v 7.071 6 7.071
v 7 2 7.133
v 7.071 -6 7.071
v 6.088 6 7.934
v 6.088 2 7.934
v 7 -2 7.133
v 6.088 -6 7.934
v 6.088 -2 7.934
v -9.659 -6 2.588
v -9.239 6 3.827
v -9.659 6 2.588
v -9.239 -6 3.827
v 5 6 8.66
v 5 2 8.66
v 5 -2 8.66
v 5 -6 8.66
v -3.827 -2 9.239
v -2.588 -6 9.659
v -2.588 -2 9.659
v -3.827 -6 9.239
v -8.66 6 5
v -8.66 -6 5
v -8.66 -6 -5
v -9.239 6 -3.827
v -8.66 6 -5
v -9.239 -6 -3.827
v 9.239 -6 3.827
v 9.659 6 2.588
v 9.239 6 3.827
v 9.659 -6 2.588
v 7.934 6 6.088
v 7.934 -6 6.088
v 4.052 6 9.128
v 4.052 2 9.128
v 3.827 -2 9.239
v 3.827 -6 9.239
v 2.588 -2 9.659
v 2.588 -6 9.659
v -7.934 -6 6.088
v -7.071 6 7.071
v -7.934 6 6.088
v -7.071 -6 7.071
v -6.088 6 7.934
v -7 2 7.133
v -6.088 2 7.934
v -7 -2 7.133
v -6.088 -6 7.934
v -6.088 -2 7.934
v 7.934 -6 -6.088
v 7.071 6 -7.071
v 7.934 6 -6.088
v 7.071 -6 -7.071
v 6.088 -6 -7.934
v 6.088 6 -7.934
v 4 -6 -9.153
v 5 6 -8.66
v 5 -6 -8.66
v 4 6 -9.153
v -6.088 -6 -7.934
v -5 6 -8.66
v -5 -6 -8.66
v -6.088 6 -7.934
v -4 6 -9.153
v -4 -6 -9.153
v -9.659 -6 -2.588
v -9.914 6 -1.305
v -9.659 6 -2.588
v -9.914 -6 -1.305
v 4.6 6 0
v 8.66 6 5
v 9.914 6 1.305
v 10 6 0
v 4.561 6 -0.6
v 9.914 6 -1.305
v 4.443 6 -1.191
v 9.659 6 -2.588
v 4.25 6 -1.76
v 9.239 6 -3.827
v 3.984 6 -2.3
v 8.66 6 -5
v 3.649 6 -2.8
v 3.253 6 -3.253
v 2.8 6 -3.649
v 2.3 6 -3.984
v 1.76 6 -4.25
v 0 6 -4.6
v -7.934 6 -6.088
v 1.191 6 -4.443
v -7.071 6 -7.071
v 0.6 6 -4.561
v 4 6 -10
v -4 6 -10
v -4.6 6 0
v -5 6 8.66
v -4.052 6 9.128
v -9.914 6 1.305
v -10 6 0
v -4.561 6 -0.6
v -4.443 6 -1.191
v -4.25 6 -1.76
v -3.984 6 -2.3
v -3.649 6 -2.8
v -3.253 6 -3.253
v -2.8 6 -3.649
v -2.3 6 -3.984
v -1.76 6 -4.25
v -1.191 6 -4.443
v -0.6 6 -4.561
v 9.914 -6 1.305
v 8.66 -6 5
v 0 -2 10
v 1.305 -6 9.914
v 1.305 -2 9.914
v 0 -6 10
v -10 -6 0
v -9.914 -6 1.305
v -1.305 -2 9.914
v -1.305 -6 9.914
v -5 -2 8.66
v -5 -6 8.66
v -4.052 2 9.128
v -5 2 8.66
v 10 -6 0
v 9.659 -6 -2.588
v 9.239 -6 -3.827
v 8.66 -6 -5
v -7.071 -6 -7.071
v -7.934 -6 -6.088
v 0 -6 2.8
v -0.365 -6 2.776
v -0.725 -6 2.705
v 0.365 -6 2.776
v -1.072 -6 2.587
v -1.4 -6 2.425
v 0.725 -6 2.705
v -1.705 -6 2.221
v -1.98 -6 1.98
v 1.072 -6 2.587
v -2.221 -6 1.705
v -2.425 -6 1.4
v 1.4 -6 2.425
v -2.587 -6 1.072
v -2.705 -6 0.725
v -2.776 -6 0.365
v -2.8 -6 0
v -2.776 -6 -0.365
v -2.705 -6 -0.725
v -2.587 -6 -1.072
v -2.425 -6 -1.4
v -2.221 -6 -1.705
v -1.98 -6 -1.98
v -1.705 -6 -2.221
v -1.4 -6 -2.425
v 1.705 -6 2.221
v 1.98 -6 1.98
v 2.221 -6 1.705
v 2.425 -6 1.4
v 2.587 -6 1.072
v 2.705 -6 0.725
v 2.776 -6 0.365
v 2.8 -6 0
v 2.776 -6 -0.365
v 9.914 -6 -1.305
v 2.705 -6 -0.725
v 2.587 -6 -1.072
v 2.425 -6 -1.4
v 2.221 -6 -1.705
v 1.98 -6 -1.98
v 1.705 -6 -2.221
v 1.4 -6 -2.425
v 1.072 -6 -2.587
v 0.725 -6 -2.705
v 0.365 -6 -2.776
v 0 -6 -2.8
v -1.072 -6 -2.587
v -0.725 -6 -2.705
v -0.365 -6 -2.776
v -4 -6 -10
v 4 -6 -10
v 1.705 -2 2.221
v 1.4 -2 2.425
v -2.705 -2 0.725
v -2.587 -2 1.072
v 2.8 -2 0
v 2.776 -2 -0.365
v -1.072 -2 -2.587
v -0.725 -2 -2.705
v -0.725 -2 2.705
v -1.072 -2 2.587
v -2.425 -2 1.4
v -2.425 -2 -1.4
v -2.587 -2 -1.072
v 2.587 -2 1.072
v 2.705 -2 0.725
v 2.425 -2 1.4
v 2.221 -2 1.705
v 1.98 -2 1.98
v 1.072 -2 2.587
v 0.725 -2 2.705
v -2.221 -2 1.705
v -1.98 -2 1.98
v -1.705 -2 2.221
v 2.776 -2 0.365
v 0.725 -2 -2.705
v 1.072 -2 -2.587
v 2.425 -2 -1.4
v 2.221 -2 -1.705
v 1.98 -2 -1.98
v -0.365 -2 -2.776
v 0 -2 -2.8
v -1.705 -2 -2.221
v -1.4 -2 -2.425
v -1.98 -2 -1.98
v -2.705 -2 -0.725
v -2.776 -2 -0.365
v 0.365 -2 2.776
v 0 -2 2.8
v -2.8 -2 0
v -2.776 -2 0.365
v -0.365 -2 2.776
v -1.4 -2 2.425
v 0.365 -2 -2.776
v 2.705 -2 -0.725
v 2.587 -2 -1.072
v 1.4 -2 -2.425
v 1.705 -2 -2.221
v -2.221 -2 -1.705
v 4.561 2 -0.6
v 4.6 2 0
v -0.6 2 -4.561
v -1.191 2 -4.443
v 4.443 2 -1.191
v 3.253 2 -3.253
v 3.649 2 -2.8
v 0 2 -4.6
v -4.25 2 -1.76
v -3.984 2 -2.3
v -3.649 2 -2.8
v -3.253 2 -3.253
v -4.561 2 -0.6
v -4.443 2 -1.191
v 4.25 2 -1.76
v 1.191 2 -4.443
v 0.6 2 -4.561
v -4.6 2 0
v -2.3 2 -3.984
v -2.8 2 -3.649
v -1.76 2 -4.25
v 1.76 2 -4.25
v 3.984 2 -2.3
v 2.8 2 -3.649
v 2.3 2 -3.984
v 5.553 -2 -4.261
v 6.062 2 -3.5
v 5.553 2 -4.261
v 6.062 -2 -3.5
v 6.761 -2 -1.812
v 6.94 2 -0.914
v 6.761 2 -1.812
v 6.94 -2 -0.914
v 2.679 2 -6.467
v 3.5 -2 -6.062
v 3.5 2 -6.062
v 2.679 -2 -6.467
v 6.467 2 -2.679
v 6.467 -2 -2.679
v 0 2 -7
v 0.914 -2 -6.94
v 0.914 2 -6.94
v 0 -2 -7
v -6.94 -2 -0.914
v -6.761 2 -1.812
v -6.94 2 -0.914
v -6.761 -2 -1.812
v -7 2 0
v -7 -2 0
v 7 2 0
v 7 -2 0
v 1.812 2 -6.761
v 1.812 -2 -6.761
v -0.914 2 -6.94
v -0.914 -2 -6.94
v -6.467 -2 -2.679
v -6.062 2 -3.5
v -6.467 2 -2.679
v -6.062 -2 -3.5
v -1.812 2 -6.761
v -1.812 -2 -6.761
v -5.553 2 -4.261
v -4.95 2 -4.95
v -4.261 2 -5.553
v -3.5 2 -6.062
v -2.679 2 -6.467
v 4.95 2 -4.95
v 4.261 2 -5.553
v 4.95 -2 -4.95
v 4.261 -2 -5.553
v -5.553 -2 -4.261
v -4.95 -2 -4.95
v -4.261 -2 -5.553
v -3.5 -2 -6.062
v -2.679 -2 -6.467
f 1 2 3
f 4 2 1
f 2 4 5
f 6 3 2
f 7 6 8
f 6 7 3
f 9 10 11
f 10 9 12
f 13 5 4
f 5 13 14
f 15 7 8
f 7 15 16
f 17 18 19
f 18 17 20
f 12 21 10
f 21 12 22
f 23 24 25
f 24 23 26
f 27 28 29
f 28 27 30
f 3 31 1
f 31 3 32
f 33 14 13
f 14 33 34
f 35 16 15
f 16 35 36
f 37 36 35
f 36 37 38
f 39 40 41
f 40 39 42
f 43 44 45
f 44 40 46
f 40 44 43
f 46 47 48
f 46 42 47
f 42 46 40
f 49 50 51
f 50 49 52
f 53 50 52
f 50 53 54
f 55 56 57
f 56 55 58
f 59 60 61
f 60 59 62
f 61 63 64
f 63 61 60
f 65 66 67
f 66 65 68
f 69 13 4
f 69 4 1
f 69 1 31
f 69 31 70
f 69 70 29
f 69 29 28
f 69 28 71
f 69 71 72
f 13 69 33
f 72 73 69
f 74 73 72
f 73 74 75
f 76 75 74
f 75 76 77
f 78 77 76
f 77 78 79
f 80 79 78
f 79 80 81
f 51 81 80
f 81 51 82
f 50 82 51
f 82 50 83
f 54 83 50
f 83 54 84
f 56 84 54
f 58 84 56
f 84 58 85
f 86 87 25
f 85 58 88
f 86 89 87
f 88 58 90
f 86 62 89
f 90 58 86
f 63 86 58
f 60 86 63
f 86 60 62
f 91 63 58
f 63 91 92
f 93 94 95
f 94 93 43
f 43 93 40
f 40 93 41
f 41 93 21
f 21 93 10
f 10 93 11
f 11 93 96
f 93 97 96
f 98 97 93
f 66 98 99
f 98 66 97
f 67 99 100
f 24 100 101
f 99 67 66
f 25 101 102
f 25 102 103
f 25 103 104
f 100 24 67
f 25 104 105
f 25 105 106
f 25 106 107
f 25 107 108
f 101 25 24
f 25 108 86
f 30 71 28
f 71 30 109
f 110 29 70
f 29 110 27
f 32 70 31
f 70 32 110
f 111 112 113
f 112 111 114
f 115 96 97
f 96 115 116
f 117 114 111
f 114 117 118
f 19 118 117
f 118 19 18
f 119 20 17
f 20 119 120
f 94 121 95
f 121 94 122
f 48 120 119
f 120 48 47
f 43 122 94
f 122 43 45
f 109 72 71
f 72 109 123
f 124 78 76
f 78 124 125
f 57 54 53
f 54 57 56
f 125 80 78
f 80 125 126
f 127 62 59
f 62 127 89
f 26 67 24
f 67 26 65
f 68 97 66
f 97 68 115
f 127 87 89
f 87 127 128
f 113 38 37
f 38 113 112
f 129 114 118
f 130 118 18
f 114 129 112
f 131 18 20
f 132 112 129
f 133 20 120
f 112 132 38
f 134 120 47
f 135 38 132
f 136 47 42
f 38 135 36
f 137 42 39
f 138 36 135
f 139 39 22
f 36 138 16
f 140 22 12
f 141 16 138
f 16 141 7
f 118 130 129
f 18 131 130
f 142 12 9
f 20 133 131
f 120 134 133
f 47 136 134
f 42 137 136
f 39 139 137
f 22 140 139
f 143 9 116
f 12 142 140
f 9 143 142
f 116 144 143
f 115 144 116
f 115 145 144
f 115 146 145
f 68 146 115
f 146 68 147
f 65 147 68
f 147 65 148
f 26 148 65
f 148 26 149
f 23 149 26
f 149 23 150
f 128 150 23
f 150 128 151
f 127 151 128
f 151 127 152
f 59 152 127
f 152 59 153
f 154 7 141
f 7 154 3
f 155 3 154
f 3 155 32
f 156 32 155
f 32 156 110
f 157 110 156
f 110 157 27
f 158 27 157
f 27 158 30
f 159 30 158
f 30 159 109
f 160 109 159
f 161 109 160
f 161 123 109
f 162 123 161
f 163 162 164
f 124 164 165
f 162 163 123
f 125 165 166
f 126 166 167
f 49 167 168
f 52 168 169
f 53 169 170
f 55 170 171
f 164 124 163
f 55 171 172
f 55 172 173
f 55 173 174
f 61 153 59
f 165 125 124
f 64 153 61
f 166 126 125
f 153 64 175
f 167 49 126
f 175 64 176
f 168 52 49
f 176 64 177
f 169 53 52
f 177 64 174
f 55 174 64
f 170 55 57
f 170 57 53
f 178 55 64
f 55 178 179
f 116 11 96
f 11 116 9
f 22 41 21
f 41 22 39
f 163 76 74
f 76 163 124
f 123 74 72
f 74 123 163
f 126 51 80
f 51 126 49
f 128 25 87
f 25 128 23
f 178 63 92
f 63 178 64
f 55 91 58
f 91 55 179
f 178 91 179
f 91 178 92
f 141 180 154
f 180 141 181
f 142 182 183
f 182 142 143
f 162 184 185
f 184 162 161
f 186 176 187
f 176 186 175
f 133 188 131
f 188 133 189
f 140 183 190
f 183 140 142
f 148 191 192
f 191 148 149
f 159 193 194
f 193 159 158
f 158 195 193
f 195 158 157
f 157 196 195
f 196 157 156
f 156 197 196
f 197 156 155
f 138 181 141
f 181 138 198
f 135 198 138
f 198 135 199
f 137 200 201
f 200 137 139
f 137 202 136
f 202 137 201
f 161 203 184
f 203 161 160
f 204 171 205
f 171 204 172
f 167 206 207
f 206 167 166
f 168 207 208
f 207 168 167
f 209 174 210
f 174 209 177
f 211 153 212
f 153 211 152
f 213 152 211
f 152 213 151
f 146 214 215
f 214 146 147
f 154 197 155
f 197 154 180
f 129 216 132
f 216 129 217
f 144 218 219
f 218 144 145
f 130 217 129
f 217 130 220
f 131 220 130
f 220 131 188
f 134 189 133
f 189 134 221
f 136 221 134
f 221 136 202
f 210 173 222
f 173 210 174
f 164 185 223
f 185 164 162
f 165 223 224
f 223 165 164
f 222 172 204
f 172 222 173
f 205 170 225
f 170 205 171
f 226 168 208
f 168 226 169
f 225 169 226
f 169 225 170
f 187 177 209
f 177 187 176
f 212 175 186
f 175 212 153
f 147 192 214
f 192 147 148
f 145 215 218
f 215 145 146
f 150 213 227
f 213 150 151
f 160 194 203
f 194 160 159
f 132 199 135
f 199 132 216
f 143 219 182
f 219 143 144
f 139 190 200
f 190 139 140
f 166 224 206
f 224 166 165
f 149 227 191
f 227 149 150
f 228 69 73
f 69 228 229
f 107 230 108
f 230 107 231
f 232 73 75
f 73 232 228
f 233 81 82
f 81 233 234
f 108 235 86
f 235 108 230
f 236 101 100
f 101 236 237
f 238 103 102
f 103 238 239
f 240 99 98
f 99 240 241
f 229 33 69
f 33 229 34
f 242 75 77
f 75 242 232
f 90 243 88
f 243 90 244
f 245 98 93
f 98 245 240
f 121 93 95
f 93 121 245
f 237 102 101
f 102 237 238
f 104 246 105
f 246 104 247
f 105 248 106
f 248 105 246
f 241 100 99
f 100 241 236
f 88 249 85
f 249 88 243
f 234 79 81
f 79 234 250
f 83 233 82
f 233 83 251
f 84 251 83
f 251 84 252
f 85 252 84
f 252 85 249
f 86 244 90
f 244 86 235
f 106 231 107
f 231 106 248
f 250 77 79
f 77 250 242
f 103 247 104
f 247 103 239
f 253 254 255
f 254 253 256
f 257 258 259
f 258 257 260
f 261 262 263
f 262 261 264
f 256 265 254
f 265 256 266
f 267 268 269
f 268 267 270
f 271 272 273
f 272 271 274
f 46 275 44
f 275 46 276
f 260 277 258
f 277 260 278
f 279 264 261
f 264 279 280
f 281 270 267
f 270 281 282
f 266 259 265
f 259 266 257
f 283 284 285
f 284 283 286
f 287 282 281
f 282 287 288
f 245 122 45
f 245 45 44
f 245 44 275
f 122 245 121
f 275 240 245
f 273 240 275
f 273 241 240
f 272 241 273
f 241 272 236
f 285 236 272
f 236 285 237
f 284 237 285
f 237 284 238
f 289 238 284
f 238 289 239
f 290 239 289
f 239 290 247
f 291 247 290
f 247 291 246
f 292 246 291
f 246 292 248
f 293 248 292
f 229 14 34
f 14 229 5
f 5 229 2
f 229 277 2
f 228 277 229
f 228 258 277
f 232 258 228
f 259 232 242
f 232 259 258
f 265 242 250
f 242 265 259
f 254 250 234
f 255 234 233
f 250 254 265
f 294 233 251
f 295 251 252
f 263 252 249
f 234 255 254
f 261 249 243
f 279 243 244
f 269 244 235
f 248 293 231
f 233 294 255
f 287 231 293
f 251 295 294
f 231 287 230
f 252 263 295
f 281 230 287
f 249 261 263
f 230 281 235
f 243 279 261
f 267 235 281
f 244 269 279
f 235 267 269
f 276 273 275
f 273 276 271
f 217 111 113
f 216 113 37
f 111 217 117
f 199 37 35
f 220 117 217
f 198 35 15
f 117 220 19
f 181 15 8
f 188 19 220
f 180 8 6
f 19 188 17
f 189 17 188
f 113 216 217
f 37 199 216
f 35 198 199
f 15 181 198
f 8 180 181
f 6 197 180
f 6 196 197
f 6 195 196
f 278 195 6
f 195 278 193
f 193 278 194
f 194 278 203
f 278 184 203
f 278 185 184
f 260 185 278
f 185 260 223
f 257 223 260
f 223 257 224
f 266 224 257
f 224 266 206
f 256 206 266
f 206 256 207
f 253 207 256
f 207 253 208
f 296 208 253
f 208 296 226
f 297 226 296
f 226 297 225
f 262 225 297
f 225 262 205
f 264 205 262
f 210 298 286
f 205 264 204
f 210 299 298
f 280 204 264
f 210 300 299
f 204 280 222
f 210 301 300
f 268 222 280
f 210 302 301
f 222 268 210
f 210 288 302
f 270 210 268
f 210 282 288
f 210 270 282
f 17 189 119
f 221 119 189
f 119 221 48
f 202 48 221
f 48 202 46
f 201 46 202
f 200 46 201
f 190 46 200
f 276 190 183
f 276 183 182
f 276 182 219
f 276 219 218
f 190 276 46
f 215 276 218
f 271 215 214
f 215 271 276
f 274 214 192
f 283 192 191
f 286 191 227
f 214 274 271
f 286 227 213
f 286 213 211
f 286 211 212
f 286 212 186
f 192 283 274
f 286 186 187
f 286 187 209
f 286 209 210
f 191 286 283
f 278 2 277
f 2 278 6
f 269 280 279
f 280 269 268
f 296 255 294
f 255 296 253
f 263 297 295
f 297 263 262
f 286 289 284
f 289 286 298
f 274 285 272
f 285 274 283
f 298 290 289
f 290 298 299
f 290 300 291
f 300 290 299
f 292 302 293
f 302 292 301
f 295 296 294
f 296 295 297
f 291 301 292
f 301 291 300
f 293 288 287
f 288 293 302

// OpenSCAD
// 18  4  2018  : 2 ml syringe holder
 
 
 DiaM5 = 5.6;
 DiaPlunger=14; // for luer lock 3 ml syringe 
 
 
color("lime")    
rotate([90,0,0])
    
difference()
{ 
  union()
  {     
      
     //   translate([0,0,-0.5])// 0 0
       cylinder(h=12 ,d=20 ,center=true,$fn=48);  //23.2
      
      
      // rotate and make printable on this side without support:
      
    translate([0,-7.5,0])
         cube([8,5,12],center=true);       
      
  }      

  // end union
  
  // nut:
  cylinder(h=14 ,d=5.6 ,center=true,$fn=48);  
  
  
  
// insert plunger:
  hull()
  { 
      translate([0,0,-4])
 cylinder(h=7 ,d=9.2 ,center=true,$fn=48);  // pass for M5 screw head
 translate([0,10,-3])
cylinder(h=7 ,d=8 ,center=true,$fn=48);  
}
  // insert plunger:
  hull()
  { 
    cylinder(h=4 ,d=DiaPlunger ,center=true,$fn=48);  //       17
     translate([0,10,0])
    cylinder(h=4 ,d=DiaPlunger ,center=true,$fn=48);    //17
  }
  
  
// demo:
  /*
   translate([20,0,0]) /// Z + 10 = bottom or Z - 10  = top
    cube([40,100,100],center=true); 
  */
  }
   
   


         
         
